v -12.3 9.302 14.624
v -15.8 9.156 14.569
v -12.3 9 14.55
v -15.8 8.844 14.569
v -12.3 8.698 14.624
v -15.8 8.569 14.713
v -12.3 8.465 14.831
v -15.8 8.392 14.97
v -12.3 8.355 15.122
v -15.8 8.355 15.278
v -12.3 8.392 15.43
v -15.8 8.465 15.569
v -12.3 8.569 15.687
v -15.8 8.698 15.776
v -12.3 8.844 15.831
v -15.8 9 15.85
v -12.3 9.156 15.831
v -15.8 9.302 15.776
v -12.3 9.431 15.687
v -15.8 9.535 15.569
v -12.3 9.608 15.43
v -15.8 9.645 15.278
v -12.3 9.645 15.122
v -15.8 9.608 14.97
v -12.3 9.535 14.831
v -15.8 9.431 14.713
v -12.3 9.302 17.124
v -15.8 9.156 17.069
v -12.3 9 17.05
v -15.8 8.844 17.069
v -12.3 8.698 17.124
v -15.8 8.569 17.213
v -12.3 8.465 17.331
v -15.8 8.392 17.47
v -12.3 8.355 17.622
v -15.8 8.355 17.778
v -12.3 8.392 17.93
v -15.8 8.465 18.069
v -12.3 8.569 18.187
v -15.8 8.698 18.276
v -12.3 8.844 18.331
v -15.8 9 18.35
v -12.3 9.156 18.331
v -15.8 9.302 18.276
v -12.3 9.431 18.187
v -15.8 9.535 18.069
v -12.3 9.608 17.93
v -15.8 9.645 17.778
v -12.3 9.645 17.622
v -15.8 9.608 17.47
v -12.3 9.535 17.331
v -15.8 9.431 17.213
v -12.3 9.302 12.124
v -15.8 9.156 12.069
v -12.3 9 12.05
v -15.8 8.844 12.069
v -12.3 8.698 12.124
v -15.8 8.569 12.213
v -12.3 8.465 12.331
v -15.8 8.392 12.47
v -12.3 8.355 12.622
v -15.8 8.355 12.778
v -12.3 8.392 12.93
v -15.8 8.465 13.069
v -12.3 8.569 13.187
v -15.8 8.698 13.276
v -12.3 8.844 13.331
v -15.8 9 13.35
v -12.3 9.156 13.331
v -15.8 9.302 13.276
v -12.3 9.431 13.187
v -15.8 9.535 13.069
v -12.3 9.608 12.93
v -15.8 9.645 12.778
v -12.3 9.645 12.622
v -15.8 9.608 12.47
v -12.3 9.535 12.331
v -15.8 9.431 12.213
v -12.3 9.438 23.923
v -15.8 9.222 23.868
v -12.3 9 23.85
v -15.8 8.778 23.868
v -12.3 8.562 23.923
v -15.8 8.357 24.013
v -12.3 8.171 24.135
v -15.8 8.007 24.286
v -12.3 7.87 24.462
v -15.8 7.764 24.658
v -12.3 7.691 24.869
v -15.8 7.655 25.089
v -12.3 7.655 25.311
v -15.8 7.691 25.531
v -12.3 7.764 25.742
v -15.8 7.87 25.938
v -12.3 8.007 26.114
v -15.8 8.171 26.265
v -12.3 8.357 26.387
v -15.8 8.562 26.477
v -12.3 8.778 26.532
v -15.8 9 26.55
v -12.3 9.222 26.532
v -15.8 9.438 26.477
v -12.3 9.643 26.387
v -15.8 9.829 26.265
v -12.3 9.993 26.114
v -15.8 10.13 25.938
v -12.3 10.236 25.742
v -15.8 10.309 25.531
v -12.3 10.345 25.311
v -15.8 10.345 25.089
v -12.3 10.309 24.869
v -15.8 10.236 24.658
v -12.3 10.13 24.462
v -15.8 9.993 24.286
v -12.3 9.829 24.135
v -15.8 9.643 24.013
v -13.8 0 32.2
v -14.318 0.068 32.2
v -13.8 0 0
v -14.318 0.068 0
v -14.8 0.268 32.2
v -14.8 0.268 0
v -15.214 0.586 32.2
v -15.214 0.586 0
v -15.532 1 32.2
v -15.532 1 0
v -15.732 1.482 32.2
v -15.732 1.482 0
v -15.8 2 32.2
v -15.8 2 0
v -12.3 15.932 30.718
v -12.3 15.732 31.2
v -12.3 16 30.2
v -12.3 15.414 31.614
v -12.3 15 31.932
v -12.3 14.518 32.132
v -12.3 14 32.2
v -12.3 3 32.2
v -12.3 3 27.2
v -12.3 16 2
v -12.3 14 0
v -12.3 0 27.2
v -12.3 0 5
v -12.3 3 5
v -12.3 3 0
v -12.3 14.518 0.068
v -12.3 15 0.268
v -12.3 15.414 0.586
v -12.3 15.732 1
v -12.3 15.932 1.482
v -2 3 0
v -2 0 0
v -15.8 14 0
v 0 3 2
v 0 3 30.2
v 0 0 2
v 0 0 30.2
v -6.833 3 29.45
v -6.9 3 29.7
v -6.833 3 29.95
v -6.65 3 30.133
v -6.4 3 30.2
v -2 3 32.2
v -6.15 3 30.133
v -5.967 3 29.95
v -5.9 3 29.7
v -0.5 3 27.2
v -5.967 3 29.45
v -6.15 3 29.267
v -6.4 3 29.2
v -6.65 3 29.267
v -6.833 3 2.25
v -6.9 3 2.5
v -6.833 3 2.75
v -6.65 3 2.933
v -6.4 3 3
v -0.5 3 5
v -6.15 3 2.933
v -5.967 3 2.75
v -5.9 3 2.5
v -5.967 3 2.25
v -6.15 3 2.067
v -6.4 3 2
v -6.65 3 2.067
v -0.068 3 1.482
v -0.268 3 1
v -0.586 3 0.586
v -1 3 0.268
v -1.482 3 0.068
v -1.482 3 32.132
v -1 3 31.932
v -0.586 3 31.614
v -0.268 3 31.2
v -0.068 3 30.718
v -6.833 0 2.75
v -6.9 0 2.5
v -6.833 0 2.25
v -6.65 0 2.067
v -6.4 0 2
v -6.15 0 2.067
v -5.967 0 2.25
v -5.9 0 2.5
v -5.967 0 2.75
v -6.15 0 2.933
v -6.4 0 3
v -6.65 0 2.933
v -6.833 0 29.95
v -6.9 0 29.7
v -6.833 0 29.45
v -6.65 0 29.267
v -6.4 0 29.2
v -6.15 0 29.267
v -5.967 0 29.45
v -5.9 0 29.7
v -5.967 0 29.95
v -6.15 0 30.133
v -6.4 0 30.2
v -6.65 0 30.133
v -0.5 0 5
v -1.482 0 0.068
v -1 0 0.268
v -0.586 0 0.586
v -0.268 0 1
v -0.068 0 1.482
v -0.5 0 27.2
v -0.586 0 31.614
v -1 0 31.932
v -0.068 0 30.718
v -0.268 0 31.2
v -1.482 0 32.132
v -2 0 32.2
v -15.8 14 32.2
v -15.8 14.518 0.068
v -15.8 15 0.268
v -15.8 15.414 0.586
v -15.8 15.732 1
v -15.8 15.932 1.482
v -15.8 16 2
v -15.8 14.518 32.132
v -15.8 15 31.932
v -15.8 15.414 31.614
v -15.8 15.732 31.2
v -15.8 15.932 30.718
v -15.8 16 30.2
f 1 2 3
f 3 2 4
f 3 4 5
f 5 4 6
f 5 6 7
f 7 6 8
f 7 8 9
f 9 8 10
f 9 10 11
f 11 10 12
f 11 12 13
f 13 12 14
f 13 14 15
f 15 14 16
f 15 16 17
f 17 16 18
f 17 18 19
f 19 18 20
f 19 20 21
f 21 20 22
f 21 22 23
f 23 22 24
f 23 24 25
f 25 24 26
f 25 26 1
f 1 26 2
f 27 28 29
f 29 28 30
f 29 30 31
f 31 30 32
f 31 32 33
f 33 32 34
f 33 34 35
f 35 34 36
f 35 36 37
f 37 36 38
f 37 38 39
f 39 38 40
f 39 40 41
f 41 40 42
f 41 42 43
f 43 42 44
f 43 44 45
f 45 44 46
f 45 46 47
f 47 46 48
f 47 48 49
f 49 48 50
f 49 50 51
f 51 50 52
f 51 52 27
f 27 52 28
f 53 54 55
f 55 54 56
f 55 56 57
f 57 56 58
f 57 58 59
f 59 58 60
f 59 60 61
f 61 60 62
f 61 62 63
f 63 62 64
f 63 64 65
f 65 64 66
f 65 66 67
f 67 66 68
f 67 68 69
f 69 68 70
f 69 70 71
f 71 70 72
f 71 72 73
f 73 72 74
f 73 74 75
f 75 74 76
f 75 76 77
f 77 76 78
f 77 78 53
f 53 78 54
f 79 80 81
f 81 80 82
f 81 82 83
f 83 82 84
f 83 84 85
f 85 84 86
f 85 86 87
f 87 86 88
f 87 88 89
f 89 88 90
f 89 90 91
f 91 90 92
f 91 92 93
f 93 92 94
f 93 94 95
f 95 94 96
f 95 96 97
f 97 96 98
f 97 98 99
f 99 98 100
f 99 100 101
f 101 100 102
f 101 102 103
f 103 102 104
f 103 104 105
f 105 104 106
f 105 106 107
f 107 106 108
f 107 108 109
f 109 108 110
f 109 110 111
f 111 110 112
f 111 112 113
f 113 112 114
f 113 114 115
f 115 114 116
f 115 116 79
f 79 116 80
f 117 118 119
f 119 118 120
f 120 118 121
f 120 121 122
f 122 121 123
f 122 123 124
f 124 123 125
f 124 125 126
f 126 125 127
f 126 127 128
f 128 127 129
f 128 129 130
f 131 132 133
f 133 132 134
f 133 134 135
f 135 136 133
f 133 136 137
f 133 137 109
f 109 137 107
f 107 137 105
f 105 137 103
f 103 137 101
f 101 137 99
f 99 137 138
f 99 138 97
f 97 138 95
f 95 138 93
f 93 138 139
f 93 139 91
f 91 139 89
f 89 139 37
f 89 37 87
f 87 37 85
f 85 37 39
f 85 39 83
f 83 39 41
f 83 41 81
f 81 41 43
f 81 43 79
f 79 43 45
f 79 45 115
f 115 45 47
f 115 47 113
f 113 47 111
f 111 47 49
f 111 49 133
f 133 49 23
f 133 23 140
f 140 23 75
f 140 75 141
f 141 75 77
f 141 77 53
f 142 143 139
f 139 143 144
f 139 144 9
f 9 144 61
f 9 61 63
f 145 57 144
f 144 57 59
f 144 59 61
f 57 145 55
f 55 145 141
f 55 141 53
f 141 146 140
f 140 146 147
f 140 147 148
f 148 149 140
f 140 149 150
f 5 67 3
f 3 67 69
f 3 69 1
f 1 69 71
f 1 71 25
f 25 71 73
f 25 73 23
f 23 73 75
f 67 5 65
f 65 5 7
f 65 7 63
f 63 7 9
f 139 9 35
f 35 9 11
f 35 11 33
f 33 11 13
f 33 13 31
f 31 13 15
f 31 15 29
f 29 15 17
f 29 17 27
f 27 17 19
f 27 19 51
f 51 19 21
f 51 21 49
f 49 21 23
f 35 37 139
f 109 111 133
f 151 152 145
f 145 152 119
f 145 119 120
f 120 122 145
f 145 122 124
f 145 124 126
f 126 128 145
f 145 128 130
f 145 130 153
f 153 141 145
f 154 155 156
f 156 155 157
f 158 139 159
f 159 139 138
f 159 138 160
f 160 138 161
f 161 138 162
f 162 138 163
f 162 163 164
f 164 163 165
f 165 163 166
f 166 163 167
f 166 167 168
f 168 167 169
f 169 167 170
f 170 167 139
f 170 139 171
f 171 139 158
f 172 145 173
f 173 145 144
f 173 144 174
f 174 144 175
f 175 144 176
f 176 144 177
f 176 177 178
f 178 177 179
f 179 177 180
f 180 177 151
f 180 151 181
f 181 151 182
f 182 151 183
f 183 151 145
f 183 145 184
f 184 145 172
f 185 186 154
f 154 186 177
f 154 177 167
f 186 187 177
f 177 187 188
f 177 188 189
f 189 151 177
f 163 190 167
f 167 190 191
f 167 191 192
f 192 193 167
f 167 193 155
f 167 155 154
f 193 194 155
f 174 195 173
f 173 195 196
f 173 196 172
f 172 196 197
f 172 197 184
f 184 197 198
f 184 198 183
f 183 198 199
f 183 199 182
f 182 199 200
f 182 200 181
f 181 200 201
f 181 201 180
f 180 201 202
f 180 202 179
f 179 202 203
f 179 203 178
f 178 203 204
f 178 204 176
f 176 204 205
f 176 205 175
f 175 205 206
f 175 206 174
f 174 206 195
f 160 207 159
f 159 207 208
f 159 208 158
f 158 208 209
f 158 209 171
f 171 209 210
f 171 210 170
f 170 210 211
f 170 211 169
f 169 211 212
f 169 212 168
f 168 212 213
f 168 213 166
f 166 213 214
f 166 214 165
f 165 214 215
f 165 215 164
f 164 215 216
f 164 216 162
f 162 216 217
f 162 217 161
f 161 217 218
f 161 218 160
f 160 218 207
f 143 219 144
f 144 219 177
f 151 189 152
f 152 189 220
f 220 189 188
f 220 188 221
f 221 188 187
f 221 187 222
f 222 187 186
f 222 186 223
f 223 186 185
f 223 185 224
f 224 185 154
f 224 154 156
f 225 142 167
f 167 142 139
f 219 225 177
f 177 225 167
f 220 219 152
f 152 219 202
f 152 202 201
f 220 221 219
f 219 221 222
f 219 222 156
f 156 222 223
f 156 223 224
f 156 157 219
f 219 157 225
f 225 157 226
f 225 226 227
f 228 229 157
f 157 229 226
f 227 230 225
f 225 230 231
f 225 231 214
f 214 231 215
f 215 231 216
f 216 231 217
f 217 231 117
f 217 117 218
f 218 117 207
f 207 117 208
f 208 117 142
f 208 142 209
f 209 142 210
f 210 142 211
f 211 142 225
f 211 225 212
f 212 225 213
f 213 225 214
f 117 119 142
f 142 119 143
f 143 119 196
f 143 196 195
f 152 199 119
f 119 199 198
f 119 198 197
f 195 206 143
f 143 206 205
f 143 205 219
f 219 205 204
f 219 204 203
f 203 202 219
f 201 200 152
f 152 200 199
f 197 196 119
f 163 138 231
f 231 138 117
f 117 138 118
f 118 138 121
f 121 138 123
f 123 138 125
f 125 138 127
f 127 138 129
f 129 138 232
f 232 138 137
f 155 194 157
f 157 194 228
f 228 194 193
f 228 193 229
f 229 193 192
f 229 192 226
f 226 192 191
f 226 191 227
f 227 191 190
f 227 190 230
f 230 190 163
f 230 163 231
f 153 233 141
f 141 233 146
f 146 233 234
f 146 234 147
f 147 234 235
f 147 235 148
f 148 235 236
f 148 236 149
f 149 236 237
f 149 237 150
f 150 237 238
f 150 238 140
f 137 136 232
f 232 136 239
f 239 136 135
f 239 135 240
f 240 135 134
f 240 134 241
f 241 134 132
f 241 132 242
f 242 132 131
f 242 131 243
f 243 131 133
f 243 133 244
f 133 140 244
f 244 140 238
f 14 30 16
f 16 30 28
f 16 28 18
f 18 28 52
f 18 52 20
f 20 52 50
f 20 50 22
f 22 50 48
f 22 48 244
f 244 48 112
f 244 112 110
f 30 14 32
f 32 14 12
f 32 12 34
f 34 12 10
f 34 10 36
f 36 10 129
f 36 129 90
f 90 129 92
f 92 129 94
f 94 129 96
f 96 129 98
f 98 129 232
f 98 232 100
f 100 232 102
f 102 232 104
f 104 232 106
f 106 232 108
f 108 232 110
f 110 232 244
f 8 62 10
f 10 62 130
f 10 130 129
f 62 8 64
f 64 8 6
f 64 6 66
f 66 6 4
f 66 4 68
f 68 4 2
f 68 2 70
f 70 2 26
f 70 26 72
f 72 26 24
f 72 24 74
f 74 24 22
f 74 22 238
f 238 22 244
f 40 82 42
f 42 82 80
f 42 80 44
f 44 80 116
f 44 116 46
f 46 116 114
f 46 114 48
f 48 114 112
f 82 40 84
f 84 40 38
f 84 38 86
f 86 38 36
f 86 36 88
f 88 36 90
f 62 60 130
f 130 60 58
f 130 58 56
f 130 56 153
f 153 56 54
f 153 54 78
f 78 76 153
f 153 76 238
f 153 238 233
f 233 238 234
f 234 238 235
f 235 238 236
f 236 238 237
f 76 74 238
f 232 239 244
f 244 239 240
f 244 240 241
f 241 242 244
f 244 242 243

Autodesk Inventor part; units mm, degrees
ref_plane "YZ Plane" through (0, 0, 0) normal (1, 0, 0) x (0, 1, 0)
ref_plane "XZ Plane" through (0, 0, 0) normal (0, 1, 0) x (-1, 0, 0)
ref_plane "XY Plane" through (0, 0, 0) normal (0, 0, 1) x (1, 0, 0)
sketch "Sketch1" plane through (0, 0, 0) normal (0, 1, 0) x (-1, 0, 0)
  line L0 (12.8, 0) -> (12.8, 32.2)
  line L1 (12.8, 16.1) -> (0, 16.1)
  line L2 (0, 0) -> (0, 32.2)
  line L3 (6.4, 27.2) -> (12.3, 27.2)
  line L4 (12.3, 27.2) -> (12.3, 5)
  line L5 (12.3, 5) -> (0.5, 5)
  line L6 (0.5, 5) -> (0.5, 27.2)
  line L7 (0.5, 27.2) -> (6.4, 27.2)
  line L8 (0, 0) -> (12.8, 0)
  circle A0 centre (6.4, 2.5) radius 0.5
  line L9 (0, 32.2) -> (12.8, 32.2)
  circle A1 centre (6.4, 29.7) radius 0.5
  line L10 (12.8, 32.2) -> (15.8, 32.2)
  line L11 (15.8, 32.2) -> (15.8, 0)
  line L12 (15.8, 0) -> (12.8, 0)
  line L13 (12.8, 0) -> (12.8, 32.2)
  point P0 (0, 0)
  dimension "d0" = 5.9
  dimension "d1" = 11.8
  dimension "d2" = 1
  dimension "d3" = 1
  dimension "d4" = 3
extrude "Extrusion1" add sketch "Sketch1" along normal blind 3 contours L8 L2 L1 L6 L5 L4 L0 | L0 L10 L11 L12 | L1 L4 L3 L7 L6 L2 L9 L0
sketch "Sketch2" plane through (0, 3, 0) normal (0, 1, 0) x (1, 0, 0)
  line L0 (-15.8, 0) -> (-15.8, -32.2) projected
  line L1 (0, 0) -> (-15.8, 0) projected
  line L2 (-15.8, -32.2) -> (-12.3, -32.2)
  line L3 (-12.3, -32.2) -> (-12.3, 0)
  line L4 (-12.3, 0) -> (-15.8, 0)
  line L5 (-15.8, 0) -> (-15.8, -32.2)
  dimension "d7" = 3.5
extrude "Extrusion2" add sketch "Sketch2" along normal blind 13
fillet "Fillet1" radius 2 1 edges at (-15.8, 0, 16.1)
sketch "Sketch3" plane through (-15.8, 16, 0) normal (-1, 0, 0) x (0, 0, 1)
  line L0 (32.2, -14) -> (32.2, 0) projected
  line L1 (32.2, -14) -> (0, -14) projected
  line L2 (32.2, 0) -> (51.999, 0) construction
  circle A0 centre (25.2, -7) radius 1.35
  line L3 (25.2, -7) -> (32.7, -7) construction
  circle A1 centre (17.7, -7) radius 0.65
  circle A2 centre (15.2, -7) radius 0.65
  circle A3 centre (12.7, -7) radius 0.65
  point P0 (0, -16)
  dimension "d12" = 2.7
  dimension "d17" = 1.3
  dimension "d18" = 1.3
  dimension "d19" = 1.3
extrude "Extrusion3" cut sketch "Sketch3" against normal blind 13
fillet "Fillet2" radius 2 4 edges at (-14.05, 16, 0) (-14.05, 16, 32.2) (0, 1.5, 32.2) (0, 1.5, 0)
